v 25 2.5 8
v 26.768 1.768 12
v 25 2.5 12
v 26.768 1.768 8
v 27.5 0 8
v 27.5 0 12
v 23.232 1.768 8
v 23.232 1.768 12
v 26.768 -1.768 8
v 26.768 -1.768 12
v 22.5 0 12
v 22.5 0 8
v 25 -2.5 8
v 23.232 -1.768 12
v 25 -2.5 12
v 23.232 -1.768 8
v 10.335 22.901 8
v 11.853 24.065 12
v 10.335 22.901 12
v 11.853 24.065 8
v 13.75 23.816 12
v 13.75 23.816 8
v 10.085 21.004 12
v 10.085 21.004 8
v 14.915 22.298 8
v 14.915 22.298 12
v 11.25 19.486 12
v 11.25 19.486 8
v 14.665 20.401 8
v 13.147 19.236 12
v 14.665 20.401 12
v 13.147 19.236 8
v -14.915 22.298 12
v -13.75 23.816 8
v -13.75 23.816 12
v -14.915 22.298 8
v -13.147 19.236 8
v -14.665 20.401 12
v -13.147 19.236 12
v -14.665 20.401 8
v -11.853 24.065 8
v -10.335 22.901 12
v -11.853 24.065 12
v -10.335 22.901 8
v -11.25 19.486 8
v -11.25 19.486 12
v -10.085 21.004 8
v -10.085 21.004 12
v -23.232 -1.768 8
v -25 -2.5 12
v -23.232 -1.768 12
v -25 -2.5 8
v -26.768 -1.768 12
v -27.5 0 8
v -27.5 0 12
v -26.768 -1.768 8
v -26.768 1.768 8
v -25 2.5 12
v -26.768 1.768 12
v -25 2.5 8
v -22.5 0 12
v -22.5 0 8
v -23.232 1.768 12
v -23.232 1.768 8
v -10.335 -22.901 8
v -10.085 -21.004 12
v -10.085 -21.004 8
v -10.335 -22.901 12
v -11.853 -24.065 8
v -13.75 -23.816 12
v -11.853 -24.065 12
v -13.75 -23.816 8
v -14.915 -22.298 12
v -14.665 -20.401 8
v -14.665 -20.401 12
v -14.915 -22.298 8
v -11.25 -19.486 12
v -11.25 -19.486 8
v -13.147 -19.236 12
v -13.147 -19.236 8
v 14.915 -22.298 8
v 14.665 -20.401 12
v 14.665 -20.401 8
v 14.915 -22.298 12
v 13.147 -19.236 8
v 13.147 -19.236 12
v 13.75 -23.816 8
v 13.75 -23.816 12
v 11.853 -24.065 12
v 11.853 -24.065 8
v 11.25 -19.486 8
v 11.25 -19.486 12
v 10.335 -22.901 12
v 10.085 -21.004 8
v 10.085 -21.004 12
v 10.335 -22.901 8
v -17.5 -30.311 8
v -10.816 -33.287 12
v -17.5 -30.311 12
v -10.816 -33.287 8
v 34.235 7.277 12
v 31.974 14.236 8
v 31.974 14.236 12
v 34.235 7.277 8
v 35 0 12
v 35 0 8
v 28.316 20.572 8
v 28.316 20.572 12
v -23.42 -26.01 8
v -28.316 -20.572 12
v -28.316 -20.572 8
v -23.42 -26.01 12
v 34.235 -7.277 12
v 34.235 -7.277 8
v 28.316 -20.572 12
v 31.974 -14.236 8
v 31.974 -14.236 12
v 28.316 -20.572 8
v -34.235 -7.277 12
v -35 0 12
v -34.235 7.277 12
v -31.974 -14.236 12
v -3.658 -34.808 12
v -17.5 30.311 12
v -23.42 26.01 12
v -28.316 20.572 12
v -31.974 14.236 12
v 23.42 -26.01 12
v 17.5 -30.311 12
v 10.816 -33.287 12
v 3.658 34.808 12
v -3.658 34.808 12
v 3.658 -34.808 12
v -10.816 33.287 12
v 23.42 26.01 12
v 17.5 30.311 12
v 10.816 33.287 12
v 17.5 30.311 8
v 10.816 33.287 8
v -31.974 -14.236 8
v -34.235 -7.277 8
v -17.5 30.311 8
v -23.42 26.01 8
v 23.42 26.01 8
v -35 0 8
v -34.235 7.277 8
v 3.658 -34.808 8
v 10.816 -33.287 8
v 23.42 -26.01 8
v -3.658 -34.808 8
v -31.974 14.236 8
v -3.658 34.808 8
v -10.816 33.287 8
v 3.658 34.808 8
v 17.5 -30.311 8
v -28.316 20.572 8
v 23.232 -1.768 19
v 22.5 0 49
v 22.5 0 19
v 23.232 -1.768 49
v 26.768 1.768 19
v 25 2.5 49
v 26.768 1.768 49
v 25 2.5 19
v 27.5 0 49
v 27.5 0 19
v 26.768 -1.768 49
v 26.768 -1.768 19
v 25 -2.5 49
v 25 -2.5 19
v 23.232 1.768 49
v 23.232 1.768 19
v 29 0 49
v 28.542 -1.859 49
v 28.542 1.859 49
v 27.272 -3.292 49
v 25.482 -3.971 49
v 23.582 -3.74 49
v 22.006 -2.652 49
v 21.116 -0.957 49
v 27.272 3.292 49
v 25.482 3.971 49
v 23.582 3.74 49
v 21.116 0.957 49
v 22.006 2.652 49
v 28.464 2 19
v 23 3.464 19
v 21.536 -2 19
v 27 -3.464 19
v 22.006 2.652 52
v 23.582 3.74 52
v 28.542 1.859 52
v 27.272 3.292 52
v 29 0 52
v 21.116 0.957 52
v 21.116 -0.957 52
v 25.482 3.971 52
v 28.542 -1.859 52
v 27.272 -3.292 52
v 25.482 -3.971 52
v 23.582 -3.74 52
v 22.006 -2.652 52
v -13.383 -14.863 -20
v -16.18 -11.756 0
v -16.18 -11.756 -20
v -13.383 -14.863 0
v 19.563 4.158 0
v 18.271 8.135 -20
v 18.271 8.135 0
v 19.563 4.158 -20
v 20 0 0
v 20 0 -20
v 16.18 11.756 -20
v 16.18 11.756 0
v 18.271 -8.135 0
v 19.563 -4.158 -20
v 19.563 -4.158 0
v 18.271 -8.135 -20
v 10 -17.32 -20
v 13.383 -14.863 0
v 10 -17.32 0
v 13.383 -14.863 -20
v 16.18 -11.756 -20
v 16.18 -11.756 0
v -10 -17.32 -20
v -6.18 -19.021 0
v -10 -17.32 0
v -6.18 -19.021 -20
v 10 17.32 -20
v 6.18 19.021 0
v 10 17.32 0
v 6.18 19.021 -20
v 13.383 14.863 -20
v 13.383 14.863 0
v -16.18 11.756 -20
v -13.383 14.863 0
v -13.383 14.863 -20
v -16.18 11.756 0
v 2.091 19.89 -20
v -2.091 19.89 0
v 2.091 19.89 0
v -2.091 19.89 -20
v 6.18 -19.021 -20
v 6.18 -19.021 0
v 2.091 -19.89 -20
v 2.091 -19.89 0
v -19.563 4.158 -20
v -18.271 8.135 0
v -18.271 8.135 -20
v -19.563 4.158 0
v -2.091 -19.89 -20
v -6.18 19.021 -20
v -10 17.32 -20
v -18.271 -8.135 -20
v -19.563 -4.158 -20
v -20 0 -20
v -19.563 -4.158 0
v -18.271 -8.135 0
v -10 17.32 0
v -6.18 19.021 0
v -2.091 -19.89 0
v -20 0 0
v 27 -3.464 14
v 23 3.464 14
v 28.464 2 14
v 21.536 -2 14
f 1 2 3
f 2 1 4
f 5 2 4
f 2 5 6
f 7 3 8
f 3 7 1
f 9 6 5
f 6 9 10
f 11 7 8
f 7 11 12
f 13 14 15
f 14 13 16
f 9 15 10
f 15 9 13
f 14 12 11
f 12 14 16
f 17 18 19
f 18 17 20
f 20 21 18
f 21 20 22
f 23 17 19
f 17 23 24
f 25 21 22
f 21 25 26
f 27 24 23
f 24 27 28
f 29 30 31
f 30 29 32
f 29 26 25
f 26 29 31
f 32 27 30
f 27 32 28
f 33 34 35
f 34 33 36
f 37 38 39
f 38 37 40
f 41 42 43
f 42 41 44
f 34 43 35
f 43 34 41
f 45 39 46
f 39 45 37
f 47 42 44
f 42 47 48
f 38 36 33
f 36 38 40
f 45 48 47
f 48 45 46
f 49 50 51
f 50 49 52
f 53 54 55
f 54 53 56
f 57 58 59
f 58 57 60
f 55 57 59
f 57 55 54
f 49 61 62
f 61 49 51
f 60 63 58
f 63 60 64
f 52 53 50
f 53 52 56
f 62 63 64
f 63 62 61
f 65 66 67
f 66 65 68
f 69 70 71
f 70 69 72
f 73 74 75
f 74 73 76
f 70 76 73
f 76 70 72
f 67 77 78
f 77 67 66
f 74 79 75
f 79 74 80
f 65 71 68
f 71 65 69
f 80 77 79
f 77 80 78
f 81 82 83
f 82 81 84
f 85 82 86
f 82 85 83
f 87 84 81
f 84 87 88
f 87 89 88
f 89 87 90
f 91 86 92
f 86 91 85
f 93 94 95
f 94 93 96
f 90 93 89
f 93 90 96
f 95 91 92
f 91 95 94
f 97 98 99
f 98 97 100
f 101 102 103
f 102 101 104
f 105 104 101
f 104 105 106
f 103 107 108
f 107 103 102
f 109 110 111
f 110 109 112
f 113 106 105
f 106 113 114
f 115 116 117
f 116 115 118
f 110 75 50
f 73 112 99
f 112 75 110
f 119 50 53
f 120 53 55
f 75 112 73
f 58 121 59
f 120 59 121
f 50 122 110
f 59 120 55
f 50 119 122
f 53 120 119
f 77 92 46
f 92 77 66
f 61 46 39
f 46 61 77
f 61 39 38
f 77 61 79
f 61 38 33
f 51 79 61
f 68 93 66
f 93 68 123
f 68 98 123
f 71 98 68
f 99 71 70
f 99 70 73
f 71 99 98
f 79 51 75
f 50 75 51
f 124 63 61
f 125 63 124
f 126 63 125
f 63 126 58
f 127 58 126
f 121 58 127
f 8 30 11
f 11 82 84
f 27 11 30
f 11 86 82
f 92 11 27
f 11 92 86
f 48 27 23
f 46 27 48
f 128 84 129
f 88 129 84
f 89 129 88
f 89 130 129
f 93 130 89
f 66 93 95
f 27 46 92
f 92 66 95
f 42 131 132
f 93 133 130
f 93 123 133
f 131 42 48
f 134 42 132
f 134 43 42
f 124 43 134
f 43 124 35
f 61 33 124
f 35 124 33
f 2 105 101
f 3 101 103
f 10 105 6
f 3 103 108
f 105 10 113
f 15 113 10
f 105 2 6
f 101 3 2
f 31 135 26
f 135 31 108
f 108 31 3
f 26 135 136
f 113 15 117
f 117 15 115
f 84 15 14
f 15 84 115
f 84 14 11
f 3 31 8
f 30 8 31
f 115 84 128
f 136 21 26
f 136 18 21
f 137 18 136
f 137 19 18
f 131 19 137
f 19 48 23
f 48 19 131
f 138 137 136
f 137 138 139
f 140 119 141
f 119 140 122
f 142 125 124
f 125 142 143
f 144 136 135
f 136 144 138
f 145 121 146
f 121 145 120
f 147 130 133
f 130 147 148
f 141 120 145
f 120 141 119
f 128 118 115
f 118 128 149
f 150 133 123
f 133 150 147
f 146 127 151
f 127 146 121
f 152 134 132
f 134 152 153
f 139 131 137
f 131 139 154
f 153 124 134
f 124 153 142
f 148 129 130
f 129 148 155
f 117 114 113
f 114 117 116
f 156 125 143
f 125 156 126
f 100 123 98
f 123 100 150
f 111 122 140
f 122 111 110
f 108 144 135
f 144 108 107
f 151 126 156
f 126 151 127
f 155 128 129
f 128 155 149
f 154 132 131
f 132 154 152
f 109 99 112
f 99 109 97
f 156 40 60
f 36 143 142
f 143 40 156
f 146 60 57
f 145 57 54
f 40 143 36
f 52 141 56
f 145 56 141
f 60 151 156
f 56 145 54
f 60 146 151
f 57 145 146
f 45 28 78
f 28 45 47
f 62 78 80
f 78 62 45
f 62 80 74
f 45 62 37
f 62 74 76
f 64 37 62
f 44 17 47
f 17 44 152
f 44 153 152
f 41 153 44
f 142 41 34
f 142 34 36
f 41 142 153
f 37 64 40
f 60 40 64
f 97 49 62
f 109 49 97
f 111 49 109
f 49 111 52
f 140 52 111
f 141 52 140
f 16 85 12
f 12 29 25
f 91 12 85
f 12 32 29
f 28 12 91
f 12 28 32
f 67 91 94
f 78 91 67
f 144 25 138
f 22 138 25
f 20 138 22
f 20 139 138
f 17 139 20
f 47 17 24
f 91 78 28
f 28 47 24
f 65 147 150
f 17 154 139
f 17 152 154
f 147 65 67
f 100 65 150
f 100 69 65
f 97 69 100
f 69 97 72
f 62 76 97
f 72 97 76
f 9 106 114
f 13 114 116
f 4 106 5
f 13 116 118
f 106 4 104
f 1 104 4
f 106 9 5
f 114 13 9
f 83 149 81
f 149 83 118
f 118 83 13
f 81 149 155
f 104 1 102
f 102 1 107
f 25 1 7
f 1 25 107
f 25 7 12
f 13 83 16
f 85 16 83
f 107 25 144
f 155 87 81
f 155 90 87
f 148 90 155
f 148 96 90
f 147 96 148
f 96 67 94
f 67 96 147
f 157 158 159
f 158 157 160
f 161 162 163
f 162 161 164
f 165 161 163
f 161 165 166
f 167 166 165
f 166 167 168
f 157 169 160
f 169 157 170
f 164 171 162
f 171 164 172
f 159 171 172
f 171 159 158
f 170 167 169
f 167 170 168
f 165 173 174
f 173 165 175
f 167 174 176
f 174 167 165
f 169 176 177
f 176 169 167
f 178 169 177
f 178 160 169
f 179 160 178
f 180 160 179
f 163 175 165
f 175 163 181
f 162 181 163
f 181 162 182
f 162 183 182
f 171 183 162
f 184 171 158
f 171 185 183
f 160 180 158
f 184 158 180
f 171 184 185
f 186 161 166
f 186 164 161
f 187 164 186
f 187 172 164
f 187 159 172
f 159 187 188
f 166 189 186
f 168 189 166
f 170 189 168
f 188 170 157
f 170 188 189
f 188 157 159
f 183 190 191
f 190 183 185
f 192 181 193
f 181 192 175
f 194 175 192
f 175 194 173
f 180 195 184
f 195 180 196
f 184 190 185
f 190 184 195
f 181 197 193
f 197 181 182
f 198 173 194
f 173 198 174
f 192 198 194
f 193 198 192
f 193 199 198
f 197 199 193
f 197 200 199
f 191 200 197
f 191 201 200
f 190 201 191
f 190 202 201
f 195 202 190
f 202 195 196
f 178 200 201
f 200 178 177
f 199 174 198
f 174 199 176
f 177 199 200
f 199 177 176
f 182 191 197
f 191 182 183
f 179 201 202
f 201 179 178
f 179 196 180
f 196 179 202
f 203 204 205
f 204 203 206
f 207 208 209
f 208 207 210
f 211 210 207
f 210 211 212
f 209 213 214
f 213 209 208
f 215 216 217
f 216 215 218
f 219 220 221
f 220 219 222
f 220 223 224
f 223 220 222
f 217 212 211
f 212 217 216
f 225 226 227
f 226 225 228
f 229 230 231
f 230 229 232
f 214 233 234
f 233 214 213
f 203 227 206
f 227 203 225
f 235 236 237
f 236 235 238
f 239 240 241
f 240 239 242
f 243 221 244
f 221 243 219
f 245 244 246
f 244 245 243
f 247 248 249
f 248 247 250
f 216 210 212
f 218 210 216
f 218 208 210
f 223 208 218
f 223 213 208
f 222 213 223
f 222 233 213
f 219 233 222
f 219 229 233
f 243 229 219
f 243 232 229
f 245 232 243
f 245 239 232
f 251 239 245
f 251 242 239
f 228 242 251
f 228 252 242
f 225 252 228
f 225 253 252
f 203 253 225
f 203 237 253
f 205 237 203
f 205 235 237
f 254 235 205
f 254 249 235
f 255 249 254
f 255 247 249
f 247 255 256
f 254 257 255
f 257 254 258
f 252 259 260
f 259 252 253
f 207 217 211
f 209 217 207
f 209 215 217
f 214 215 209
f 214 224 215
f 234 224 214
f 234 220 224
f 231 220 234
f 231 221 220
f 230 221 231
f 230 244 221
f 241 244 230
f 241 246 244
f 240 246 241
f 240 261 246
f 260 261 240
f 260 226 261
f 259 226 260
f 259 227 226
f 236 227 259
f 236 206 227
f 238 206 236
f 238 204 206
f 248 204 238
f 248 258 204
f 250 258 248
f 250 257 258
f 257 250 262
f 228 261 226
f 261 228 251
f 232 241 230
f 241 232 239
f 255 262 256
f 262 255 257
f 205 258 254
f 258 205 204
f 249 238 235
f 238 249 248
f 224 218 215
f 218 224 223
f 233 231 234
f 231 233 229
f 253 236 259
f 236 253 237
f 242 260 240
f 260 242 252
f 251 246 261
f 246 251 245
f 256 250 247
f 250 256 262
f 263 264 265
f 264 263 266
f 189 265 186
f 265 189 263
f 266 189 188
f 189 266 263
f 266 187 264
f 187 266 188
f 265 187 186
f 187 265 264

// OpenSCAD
// Parameters for the central cylinder
cylinder_diameter = 40; // Reduced diameter to match the original model
cylinder_height = 20;   // Height remains unchanged

// Parameters for the flange plate
flange_diameter = 70;   // Diameter of the flange plate remains unchanged
flange_thickness = 4;   // Reduced thickness to match the original model
bolt_hole_diameter = 5; // Diameter of the bolt holes remains unchanged
bolt_hole_count = 6;    // Number of bolt holes evenly distributed

// Parameters for the nut
nut_diameter = 8;       // Reduced hexagonal profile diameter to match the original model
nut_height = 5;         // Height of the nut remains unchanged

// Parameters for the bolt
bolt_shaft_diameter = 5; // Diameter of the bolt shaft remains unchanged
bolt_shaft_length = 30;  // Increased shaft length to match the original model
bolt_head_diameter = 8;  // Diameter of the bolt head remains unchanged
bolt_head_height = 3;    // Height of the bolt head remains unchanged

// Central cylinder
module central_cylinder() {
    cylinder(d = cylinder_diameter, h = cylinder_height, center = true);
}

// Flange plate with evenly distributed bolt holes
module flange_plate() {
    difference() {
        cylinder(d = flange_diameter, h = flange_thickness, center = true);
        for (i = [0:360/bolt_hole_count:360-360/bolt_hole_count]) {
            rotate([0, 0, i])
            translate([flange_diameter/2 - 10, 0, 0])
            cylinder(d = bolt_hole_diameter, h = flange_thickness + 1, center = true);
        }
    }
}

// Nut
module nut() {
    rotate([0, 0, 30]) // Align hexagonal profile
    linear_extrude(height = nut_height)
    polygon(points = [[0, nut_diameter/2], [nut_diameter/2, 0], [0, -nut_diameter/2], [-nut_diameter/2, 0]]);
}

// Bolt
module bolt() {
    union() {
        cylinder(d = bolt_shaft_diameter, h = bolt_shaft_length, center = false);
        translate([0, 0, bolt_shaft_length])
        cylinder(d = bolt_head_diameter, h = bolt_head_height, center = false);
    }
}

// Render the components
translate([0, 0, -cylinder_height/2])
central_cylinder();

translate([0, 0, cylinder_height/2])
flange_plate();

translate([flange_diameter/2 - 10, 0, cylinder_height/2 + flange_thickness])
nut();

translate([flange_diameter/2 - 10, 0, cylinder_height/2 + flange_thickness + nut_height])
bolt();
